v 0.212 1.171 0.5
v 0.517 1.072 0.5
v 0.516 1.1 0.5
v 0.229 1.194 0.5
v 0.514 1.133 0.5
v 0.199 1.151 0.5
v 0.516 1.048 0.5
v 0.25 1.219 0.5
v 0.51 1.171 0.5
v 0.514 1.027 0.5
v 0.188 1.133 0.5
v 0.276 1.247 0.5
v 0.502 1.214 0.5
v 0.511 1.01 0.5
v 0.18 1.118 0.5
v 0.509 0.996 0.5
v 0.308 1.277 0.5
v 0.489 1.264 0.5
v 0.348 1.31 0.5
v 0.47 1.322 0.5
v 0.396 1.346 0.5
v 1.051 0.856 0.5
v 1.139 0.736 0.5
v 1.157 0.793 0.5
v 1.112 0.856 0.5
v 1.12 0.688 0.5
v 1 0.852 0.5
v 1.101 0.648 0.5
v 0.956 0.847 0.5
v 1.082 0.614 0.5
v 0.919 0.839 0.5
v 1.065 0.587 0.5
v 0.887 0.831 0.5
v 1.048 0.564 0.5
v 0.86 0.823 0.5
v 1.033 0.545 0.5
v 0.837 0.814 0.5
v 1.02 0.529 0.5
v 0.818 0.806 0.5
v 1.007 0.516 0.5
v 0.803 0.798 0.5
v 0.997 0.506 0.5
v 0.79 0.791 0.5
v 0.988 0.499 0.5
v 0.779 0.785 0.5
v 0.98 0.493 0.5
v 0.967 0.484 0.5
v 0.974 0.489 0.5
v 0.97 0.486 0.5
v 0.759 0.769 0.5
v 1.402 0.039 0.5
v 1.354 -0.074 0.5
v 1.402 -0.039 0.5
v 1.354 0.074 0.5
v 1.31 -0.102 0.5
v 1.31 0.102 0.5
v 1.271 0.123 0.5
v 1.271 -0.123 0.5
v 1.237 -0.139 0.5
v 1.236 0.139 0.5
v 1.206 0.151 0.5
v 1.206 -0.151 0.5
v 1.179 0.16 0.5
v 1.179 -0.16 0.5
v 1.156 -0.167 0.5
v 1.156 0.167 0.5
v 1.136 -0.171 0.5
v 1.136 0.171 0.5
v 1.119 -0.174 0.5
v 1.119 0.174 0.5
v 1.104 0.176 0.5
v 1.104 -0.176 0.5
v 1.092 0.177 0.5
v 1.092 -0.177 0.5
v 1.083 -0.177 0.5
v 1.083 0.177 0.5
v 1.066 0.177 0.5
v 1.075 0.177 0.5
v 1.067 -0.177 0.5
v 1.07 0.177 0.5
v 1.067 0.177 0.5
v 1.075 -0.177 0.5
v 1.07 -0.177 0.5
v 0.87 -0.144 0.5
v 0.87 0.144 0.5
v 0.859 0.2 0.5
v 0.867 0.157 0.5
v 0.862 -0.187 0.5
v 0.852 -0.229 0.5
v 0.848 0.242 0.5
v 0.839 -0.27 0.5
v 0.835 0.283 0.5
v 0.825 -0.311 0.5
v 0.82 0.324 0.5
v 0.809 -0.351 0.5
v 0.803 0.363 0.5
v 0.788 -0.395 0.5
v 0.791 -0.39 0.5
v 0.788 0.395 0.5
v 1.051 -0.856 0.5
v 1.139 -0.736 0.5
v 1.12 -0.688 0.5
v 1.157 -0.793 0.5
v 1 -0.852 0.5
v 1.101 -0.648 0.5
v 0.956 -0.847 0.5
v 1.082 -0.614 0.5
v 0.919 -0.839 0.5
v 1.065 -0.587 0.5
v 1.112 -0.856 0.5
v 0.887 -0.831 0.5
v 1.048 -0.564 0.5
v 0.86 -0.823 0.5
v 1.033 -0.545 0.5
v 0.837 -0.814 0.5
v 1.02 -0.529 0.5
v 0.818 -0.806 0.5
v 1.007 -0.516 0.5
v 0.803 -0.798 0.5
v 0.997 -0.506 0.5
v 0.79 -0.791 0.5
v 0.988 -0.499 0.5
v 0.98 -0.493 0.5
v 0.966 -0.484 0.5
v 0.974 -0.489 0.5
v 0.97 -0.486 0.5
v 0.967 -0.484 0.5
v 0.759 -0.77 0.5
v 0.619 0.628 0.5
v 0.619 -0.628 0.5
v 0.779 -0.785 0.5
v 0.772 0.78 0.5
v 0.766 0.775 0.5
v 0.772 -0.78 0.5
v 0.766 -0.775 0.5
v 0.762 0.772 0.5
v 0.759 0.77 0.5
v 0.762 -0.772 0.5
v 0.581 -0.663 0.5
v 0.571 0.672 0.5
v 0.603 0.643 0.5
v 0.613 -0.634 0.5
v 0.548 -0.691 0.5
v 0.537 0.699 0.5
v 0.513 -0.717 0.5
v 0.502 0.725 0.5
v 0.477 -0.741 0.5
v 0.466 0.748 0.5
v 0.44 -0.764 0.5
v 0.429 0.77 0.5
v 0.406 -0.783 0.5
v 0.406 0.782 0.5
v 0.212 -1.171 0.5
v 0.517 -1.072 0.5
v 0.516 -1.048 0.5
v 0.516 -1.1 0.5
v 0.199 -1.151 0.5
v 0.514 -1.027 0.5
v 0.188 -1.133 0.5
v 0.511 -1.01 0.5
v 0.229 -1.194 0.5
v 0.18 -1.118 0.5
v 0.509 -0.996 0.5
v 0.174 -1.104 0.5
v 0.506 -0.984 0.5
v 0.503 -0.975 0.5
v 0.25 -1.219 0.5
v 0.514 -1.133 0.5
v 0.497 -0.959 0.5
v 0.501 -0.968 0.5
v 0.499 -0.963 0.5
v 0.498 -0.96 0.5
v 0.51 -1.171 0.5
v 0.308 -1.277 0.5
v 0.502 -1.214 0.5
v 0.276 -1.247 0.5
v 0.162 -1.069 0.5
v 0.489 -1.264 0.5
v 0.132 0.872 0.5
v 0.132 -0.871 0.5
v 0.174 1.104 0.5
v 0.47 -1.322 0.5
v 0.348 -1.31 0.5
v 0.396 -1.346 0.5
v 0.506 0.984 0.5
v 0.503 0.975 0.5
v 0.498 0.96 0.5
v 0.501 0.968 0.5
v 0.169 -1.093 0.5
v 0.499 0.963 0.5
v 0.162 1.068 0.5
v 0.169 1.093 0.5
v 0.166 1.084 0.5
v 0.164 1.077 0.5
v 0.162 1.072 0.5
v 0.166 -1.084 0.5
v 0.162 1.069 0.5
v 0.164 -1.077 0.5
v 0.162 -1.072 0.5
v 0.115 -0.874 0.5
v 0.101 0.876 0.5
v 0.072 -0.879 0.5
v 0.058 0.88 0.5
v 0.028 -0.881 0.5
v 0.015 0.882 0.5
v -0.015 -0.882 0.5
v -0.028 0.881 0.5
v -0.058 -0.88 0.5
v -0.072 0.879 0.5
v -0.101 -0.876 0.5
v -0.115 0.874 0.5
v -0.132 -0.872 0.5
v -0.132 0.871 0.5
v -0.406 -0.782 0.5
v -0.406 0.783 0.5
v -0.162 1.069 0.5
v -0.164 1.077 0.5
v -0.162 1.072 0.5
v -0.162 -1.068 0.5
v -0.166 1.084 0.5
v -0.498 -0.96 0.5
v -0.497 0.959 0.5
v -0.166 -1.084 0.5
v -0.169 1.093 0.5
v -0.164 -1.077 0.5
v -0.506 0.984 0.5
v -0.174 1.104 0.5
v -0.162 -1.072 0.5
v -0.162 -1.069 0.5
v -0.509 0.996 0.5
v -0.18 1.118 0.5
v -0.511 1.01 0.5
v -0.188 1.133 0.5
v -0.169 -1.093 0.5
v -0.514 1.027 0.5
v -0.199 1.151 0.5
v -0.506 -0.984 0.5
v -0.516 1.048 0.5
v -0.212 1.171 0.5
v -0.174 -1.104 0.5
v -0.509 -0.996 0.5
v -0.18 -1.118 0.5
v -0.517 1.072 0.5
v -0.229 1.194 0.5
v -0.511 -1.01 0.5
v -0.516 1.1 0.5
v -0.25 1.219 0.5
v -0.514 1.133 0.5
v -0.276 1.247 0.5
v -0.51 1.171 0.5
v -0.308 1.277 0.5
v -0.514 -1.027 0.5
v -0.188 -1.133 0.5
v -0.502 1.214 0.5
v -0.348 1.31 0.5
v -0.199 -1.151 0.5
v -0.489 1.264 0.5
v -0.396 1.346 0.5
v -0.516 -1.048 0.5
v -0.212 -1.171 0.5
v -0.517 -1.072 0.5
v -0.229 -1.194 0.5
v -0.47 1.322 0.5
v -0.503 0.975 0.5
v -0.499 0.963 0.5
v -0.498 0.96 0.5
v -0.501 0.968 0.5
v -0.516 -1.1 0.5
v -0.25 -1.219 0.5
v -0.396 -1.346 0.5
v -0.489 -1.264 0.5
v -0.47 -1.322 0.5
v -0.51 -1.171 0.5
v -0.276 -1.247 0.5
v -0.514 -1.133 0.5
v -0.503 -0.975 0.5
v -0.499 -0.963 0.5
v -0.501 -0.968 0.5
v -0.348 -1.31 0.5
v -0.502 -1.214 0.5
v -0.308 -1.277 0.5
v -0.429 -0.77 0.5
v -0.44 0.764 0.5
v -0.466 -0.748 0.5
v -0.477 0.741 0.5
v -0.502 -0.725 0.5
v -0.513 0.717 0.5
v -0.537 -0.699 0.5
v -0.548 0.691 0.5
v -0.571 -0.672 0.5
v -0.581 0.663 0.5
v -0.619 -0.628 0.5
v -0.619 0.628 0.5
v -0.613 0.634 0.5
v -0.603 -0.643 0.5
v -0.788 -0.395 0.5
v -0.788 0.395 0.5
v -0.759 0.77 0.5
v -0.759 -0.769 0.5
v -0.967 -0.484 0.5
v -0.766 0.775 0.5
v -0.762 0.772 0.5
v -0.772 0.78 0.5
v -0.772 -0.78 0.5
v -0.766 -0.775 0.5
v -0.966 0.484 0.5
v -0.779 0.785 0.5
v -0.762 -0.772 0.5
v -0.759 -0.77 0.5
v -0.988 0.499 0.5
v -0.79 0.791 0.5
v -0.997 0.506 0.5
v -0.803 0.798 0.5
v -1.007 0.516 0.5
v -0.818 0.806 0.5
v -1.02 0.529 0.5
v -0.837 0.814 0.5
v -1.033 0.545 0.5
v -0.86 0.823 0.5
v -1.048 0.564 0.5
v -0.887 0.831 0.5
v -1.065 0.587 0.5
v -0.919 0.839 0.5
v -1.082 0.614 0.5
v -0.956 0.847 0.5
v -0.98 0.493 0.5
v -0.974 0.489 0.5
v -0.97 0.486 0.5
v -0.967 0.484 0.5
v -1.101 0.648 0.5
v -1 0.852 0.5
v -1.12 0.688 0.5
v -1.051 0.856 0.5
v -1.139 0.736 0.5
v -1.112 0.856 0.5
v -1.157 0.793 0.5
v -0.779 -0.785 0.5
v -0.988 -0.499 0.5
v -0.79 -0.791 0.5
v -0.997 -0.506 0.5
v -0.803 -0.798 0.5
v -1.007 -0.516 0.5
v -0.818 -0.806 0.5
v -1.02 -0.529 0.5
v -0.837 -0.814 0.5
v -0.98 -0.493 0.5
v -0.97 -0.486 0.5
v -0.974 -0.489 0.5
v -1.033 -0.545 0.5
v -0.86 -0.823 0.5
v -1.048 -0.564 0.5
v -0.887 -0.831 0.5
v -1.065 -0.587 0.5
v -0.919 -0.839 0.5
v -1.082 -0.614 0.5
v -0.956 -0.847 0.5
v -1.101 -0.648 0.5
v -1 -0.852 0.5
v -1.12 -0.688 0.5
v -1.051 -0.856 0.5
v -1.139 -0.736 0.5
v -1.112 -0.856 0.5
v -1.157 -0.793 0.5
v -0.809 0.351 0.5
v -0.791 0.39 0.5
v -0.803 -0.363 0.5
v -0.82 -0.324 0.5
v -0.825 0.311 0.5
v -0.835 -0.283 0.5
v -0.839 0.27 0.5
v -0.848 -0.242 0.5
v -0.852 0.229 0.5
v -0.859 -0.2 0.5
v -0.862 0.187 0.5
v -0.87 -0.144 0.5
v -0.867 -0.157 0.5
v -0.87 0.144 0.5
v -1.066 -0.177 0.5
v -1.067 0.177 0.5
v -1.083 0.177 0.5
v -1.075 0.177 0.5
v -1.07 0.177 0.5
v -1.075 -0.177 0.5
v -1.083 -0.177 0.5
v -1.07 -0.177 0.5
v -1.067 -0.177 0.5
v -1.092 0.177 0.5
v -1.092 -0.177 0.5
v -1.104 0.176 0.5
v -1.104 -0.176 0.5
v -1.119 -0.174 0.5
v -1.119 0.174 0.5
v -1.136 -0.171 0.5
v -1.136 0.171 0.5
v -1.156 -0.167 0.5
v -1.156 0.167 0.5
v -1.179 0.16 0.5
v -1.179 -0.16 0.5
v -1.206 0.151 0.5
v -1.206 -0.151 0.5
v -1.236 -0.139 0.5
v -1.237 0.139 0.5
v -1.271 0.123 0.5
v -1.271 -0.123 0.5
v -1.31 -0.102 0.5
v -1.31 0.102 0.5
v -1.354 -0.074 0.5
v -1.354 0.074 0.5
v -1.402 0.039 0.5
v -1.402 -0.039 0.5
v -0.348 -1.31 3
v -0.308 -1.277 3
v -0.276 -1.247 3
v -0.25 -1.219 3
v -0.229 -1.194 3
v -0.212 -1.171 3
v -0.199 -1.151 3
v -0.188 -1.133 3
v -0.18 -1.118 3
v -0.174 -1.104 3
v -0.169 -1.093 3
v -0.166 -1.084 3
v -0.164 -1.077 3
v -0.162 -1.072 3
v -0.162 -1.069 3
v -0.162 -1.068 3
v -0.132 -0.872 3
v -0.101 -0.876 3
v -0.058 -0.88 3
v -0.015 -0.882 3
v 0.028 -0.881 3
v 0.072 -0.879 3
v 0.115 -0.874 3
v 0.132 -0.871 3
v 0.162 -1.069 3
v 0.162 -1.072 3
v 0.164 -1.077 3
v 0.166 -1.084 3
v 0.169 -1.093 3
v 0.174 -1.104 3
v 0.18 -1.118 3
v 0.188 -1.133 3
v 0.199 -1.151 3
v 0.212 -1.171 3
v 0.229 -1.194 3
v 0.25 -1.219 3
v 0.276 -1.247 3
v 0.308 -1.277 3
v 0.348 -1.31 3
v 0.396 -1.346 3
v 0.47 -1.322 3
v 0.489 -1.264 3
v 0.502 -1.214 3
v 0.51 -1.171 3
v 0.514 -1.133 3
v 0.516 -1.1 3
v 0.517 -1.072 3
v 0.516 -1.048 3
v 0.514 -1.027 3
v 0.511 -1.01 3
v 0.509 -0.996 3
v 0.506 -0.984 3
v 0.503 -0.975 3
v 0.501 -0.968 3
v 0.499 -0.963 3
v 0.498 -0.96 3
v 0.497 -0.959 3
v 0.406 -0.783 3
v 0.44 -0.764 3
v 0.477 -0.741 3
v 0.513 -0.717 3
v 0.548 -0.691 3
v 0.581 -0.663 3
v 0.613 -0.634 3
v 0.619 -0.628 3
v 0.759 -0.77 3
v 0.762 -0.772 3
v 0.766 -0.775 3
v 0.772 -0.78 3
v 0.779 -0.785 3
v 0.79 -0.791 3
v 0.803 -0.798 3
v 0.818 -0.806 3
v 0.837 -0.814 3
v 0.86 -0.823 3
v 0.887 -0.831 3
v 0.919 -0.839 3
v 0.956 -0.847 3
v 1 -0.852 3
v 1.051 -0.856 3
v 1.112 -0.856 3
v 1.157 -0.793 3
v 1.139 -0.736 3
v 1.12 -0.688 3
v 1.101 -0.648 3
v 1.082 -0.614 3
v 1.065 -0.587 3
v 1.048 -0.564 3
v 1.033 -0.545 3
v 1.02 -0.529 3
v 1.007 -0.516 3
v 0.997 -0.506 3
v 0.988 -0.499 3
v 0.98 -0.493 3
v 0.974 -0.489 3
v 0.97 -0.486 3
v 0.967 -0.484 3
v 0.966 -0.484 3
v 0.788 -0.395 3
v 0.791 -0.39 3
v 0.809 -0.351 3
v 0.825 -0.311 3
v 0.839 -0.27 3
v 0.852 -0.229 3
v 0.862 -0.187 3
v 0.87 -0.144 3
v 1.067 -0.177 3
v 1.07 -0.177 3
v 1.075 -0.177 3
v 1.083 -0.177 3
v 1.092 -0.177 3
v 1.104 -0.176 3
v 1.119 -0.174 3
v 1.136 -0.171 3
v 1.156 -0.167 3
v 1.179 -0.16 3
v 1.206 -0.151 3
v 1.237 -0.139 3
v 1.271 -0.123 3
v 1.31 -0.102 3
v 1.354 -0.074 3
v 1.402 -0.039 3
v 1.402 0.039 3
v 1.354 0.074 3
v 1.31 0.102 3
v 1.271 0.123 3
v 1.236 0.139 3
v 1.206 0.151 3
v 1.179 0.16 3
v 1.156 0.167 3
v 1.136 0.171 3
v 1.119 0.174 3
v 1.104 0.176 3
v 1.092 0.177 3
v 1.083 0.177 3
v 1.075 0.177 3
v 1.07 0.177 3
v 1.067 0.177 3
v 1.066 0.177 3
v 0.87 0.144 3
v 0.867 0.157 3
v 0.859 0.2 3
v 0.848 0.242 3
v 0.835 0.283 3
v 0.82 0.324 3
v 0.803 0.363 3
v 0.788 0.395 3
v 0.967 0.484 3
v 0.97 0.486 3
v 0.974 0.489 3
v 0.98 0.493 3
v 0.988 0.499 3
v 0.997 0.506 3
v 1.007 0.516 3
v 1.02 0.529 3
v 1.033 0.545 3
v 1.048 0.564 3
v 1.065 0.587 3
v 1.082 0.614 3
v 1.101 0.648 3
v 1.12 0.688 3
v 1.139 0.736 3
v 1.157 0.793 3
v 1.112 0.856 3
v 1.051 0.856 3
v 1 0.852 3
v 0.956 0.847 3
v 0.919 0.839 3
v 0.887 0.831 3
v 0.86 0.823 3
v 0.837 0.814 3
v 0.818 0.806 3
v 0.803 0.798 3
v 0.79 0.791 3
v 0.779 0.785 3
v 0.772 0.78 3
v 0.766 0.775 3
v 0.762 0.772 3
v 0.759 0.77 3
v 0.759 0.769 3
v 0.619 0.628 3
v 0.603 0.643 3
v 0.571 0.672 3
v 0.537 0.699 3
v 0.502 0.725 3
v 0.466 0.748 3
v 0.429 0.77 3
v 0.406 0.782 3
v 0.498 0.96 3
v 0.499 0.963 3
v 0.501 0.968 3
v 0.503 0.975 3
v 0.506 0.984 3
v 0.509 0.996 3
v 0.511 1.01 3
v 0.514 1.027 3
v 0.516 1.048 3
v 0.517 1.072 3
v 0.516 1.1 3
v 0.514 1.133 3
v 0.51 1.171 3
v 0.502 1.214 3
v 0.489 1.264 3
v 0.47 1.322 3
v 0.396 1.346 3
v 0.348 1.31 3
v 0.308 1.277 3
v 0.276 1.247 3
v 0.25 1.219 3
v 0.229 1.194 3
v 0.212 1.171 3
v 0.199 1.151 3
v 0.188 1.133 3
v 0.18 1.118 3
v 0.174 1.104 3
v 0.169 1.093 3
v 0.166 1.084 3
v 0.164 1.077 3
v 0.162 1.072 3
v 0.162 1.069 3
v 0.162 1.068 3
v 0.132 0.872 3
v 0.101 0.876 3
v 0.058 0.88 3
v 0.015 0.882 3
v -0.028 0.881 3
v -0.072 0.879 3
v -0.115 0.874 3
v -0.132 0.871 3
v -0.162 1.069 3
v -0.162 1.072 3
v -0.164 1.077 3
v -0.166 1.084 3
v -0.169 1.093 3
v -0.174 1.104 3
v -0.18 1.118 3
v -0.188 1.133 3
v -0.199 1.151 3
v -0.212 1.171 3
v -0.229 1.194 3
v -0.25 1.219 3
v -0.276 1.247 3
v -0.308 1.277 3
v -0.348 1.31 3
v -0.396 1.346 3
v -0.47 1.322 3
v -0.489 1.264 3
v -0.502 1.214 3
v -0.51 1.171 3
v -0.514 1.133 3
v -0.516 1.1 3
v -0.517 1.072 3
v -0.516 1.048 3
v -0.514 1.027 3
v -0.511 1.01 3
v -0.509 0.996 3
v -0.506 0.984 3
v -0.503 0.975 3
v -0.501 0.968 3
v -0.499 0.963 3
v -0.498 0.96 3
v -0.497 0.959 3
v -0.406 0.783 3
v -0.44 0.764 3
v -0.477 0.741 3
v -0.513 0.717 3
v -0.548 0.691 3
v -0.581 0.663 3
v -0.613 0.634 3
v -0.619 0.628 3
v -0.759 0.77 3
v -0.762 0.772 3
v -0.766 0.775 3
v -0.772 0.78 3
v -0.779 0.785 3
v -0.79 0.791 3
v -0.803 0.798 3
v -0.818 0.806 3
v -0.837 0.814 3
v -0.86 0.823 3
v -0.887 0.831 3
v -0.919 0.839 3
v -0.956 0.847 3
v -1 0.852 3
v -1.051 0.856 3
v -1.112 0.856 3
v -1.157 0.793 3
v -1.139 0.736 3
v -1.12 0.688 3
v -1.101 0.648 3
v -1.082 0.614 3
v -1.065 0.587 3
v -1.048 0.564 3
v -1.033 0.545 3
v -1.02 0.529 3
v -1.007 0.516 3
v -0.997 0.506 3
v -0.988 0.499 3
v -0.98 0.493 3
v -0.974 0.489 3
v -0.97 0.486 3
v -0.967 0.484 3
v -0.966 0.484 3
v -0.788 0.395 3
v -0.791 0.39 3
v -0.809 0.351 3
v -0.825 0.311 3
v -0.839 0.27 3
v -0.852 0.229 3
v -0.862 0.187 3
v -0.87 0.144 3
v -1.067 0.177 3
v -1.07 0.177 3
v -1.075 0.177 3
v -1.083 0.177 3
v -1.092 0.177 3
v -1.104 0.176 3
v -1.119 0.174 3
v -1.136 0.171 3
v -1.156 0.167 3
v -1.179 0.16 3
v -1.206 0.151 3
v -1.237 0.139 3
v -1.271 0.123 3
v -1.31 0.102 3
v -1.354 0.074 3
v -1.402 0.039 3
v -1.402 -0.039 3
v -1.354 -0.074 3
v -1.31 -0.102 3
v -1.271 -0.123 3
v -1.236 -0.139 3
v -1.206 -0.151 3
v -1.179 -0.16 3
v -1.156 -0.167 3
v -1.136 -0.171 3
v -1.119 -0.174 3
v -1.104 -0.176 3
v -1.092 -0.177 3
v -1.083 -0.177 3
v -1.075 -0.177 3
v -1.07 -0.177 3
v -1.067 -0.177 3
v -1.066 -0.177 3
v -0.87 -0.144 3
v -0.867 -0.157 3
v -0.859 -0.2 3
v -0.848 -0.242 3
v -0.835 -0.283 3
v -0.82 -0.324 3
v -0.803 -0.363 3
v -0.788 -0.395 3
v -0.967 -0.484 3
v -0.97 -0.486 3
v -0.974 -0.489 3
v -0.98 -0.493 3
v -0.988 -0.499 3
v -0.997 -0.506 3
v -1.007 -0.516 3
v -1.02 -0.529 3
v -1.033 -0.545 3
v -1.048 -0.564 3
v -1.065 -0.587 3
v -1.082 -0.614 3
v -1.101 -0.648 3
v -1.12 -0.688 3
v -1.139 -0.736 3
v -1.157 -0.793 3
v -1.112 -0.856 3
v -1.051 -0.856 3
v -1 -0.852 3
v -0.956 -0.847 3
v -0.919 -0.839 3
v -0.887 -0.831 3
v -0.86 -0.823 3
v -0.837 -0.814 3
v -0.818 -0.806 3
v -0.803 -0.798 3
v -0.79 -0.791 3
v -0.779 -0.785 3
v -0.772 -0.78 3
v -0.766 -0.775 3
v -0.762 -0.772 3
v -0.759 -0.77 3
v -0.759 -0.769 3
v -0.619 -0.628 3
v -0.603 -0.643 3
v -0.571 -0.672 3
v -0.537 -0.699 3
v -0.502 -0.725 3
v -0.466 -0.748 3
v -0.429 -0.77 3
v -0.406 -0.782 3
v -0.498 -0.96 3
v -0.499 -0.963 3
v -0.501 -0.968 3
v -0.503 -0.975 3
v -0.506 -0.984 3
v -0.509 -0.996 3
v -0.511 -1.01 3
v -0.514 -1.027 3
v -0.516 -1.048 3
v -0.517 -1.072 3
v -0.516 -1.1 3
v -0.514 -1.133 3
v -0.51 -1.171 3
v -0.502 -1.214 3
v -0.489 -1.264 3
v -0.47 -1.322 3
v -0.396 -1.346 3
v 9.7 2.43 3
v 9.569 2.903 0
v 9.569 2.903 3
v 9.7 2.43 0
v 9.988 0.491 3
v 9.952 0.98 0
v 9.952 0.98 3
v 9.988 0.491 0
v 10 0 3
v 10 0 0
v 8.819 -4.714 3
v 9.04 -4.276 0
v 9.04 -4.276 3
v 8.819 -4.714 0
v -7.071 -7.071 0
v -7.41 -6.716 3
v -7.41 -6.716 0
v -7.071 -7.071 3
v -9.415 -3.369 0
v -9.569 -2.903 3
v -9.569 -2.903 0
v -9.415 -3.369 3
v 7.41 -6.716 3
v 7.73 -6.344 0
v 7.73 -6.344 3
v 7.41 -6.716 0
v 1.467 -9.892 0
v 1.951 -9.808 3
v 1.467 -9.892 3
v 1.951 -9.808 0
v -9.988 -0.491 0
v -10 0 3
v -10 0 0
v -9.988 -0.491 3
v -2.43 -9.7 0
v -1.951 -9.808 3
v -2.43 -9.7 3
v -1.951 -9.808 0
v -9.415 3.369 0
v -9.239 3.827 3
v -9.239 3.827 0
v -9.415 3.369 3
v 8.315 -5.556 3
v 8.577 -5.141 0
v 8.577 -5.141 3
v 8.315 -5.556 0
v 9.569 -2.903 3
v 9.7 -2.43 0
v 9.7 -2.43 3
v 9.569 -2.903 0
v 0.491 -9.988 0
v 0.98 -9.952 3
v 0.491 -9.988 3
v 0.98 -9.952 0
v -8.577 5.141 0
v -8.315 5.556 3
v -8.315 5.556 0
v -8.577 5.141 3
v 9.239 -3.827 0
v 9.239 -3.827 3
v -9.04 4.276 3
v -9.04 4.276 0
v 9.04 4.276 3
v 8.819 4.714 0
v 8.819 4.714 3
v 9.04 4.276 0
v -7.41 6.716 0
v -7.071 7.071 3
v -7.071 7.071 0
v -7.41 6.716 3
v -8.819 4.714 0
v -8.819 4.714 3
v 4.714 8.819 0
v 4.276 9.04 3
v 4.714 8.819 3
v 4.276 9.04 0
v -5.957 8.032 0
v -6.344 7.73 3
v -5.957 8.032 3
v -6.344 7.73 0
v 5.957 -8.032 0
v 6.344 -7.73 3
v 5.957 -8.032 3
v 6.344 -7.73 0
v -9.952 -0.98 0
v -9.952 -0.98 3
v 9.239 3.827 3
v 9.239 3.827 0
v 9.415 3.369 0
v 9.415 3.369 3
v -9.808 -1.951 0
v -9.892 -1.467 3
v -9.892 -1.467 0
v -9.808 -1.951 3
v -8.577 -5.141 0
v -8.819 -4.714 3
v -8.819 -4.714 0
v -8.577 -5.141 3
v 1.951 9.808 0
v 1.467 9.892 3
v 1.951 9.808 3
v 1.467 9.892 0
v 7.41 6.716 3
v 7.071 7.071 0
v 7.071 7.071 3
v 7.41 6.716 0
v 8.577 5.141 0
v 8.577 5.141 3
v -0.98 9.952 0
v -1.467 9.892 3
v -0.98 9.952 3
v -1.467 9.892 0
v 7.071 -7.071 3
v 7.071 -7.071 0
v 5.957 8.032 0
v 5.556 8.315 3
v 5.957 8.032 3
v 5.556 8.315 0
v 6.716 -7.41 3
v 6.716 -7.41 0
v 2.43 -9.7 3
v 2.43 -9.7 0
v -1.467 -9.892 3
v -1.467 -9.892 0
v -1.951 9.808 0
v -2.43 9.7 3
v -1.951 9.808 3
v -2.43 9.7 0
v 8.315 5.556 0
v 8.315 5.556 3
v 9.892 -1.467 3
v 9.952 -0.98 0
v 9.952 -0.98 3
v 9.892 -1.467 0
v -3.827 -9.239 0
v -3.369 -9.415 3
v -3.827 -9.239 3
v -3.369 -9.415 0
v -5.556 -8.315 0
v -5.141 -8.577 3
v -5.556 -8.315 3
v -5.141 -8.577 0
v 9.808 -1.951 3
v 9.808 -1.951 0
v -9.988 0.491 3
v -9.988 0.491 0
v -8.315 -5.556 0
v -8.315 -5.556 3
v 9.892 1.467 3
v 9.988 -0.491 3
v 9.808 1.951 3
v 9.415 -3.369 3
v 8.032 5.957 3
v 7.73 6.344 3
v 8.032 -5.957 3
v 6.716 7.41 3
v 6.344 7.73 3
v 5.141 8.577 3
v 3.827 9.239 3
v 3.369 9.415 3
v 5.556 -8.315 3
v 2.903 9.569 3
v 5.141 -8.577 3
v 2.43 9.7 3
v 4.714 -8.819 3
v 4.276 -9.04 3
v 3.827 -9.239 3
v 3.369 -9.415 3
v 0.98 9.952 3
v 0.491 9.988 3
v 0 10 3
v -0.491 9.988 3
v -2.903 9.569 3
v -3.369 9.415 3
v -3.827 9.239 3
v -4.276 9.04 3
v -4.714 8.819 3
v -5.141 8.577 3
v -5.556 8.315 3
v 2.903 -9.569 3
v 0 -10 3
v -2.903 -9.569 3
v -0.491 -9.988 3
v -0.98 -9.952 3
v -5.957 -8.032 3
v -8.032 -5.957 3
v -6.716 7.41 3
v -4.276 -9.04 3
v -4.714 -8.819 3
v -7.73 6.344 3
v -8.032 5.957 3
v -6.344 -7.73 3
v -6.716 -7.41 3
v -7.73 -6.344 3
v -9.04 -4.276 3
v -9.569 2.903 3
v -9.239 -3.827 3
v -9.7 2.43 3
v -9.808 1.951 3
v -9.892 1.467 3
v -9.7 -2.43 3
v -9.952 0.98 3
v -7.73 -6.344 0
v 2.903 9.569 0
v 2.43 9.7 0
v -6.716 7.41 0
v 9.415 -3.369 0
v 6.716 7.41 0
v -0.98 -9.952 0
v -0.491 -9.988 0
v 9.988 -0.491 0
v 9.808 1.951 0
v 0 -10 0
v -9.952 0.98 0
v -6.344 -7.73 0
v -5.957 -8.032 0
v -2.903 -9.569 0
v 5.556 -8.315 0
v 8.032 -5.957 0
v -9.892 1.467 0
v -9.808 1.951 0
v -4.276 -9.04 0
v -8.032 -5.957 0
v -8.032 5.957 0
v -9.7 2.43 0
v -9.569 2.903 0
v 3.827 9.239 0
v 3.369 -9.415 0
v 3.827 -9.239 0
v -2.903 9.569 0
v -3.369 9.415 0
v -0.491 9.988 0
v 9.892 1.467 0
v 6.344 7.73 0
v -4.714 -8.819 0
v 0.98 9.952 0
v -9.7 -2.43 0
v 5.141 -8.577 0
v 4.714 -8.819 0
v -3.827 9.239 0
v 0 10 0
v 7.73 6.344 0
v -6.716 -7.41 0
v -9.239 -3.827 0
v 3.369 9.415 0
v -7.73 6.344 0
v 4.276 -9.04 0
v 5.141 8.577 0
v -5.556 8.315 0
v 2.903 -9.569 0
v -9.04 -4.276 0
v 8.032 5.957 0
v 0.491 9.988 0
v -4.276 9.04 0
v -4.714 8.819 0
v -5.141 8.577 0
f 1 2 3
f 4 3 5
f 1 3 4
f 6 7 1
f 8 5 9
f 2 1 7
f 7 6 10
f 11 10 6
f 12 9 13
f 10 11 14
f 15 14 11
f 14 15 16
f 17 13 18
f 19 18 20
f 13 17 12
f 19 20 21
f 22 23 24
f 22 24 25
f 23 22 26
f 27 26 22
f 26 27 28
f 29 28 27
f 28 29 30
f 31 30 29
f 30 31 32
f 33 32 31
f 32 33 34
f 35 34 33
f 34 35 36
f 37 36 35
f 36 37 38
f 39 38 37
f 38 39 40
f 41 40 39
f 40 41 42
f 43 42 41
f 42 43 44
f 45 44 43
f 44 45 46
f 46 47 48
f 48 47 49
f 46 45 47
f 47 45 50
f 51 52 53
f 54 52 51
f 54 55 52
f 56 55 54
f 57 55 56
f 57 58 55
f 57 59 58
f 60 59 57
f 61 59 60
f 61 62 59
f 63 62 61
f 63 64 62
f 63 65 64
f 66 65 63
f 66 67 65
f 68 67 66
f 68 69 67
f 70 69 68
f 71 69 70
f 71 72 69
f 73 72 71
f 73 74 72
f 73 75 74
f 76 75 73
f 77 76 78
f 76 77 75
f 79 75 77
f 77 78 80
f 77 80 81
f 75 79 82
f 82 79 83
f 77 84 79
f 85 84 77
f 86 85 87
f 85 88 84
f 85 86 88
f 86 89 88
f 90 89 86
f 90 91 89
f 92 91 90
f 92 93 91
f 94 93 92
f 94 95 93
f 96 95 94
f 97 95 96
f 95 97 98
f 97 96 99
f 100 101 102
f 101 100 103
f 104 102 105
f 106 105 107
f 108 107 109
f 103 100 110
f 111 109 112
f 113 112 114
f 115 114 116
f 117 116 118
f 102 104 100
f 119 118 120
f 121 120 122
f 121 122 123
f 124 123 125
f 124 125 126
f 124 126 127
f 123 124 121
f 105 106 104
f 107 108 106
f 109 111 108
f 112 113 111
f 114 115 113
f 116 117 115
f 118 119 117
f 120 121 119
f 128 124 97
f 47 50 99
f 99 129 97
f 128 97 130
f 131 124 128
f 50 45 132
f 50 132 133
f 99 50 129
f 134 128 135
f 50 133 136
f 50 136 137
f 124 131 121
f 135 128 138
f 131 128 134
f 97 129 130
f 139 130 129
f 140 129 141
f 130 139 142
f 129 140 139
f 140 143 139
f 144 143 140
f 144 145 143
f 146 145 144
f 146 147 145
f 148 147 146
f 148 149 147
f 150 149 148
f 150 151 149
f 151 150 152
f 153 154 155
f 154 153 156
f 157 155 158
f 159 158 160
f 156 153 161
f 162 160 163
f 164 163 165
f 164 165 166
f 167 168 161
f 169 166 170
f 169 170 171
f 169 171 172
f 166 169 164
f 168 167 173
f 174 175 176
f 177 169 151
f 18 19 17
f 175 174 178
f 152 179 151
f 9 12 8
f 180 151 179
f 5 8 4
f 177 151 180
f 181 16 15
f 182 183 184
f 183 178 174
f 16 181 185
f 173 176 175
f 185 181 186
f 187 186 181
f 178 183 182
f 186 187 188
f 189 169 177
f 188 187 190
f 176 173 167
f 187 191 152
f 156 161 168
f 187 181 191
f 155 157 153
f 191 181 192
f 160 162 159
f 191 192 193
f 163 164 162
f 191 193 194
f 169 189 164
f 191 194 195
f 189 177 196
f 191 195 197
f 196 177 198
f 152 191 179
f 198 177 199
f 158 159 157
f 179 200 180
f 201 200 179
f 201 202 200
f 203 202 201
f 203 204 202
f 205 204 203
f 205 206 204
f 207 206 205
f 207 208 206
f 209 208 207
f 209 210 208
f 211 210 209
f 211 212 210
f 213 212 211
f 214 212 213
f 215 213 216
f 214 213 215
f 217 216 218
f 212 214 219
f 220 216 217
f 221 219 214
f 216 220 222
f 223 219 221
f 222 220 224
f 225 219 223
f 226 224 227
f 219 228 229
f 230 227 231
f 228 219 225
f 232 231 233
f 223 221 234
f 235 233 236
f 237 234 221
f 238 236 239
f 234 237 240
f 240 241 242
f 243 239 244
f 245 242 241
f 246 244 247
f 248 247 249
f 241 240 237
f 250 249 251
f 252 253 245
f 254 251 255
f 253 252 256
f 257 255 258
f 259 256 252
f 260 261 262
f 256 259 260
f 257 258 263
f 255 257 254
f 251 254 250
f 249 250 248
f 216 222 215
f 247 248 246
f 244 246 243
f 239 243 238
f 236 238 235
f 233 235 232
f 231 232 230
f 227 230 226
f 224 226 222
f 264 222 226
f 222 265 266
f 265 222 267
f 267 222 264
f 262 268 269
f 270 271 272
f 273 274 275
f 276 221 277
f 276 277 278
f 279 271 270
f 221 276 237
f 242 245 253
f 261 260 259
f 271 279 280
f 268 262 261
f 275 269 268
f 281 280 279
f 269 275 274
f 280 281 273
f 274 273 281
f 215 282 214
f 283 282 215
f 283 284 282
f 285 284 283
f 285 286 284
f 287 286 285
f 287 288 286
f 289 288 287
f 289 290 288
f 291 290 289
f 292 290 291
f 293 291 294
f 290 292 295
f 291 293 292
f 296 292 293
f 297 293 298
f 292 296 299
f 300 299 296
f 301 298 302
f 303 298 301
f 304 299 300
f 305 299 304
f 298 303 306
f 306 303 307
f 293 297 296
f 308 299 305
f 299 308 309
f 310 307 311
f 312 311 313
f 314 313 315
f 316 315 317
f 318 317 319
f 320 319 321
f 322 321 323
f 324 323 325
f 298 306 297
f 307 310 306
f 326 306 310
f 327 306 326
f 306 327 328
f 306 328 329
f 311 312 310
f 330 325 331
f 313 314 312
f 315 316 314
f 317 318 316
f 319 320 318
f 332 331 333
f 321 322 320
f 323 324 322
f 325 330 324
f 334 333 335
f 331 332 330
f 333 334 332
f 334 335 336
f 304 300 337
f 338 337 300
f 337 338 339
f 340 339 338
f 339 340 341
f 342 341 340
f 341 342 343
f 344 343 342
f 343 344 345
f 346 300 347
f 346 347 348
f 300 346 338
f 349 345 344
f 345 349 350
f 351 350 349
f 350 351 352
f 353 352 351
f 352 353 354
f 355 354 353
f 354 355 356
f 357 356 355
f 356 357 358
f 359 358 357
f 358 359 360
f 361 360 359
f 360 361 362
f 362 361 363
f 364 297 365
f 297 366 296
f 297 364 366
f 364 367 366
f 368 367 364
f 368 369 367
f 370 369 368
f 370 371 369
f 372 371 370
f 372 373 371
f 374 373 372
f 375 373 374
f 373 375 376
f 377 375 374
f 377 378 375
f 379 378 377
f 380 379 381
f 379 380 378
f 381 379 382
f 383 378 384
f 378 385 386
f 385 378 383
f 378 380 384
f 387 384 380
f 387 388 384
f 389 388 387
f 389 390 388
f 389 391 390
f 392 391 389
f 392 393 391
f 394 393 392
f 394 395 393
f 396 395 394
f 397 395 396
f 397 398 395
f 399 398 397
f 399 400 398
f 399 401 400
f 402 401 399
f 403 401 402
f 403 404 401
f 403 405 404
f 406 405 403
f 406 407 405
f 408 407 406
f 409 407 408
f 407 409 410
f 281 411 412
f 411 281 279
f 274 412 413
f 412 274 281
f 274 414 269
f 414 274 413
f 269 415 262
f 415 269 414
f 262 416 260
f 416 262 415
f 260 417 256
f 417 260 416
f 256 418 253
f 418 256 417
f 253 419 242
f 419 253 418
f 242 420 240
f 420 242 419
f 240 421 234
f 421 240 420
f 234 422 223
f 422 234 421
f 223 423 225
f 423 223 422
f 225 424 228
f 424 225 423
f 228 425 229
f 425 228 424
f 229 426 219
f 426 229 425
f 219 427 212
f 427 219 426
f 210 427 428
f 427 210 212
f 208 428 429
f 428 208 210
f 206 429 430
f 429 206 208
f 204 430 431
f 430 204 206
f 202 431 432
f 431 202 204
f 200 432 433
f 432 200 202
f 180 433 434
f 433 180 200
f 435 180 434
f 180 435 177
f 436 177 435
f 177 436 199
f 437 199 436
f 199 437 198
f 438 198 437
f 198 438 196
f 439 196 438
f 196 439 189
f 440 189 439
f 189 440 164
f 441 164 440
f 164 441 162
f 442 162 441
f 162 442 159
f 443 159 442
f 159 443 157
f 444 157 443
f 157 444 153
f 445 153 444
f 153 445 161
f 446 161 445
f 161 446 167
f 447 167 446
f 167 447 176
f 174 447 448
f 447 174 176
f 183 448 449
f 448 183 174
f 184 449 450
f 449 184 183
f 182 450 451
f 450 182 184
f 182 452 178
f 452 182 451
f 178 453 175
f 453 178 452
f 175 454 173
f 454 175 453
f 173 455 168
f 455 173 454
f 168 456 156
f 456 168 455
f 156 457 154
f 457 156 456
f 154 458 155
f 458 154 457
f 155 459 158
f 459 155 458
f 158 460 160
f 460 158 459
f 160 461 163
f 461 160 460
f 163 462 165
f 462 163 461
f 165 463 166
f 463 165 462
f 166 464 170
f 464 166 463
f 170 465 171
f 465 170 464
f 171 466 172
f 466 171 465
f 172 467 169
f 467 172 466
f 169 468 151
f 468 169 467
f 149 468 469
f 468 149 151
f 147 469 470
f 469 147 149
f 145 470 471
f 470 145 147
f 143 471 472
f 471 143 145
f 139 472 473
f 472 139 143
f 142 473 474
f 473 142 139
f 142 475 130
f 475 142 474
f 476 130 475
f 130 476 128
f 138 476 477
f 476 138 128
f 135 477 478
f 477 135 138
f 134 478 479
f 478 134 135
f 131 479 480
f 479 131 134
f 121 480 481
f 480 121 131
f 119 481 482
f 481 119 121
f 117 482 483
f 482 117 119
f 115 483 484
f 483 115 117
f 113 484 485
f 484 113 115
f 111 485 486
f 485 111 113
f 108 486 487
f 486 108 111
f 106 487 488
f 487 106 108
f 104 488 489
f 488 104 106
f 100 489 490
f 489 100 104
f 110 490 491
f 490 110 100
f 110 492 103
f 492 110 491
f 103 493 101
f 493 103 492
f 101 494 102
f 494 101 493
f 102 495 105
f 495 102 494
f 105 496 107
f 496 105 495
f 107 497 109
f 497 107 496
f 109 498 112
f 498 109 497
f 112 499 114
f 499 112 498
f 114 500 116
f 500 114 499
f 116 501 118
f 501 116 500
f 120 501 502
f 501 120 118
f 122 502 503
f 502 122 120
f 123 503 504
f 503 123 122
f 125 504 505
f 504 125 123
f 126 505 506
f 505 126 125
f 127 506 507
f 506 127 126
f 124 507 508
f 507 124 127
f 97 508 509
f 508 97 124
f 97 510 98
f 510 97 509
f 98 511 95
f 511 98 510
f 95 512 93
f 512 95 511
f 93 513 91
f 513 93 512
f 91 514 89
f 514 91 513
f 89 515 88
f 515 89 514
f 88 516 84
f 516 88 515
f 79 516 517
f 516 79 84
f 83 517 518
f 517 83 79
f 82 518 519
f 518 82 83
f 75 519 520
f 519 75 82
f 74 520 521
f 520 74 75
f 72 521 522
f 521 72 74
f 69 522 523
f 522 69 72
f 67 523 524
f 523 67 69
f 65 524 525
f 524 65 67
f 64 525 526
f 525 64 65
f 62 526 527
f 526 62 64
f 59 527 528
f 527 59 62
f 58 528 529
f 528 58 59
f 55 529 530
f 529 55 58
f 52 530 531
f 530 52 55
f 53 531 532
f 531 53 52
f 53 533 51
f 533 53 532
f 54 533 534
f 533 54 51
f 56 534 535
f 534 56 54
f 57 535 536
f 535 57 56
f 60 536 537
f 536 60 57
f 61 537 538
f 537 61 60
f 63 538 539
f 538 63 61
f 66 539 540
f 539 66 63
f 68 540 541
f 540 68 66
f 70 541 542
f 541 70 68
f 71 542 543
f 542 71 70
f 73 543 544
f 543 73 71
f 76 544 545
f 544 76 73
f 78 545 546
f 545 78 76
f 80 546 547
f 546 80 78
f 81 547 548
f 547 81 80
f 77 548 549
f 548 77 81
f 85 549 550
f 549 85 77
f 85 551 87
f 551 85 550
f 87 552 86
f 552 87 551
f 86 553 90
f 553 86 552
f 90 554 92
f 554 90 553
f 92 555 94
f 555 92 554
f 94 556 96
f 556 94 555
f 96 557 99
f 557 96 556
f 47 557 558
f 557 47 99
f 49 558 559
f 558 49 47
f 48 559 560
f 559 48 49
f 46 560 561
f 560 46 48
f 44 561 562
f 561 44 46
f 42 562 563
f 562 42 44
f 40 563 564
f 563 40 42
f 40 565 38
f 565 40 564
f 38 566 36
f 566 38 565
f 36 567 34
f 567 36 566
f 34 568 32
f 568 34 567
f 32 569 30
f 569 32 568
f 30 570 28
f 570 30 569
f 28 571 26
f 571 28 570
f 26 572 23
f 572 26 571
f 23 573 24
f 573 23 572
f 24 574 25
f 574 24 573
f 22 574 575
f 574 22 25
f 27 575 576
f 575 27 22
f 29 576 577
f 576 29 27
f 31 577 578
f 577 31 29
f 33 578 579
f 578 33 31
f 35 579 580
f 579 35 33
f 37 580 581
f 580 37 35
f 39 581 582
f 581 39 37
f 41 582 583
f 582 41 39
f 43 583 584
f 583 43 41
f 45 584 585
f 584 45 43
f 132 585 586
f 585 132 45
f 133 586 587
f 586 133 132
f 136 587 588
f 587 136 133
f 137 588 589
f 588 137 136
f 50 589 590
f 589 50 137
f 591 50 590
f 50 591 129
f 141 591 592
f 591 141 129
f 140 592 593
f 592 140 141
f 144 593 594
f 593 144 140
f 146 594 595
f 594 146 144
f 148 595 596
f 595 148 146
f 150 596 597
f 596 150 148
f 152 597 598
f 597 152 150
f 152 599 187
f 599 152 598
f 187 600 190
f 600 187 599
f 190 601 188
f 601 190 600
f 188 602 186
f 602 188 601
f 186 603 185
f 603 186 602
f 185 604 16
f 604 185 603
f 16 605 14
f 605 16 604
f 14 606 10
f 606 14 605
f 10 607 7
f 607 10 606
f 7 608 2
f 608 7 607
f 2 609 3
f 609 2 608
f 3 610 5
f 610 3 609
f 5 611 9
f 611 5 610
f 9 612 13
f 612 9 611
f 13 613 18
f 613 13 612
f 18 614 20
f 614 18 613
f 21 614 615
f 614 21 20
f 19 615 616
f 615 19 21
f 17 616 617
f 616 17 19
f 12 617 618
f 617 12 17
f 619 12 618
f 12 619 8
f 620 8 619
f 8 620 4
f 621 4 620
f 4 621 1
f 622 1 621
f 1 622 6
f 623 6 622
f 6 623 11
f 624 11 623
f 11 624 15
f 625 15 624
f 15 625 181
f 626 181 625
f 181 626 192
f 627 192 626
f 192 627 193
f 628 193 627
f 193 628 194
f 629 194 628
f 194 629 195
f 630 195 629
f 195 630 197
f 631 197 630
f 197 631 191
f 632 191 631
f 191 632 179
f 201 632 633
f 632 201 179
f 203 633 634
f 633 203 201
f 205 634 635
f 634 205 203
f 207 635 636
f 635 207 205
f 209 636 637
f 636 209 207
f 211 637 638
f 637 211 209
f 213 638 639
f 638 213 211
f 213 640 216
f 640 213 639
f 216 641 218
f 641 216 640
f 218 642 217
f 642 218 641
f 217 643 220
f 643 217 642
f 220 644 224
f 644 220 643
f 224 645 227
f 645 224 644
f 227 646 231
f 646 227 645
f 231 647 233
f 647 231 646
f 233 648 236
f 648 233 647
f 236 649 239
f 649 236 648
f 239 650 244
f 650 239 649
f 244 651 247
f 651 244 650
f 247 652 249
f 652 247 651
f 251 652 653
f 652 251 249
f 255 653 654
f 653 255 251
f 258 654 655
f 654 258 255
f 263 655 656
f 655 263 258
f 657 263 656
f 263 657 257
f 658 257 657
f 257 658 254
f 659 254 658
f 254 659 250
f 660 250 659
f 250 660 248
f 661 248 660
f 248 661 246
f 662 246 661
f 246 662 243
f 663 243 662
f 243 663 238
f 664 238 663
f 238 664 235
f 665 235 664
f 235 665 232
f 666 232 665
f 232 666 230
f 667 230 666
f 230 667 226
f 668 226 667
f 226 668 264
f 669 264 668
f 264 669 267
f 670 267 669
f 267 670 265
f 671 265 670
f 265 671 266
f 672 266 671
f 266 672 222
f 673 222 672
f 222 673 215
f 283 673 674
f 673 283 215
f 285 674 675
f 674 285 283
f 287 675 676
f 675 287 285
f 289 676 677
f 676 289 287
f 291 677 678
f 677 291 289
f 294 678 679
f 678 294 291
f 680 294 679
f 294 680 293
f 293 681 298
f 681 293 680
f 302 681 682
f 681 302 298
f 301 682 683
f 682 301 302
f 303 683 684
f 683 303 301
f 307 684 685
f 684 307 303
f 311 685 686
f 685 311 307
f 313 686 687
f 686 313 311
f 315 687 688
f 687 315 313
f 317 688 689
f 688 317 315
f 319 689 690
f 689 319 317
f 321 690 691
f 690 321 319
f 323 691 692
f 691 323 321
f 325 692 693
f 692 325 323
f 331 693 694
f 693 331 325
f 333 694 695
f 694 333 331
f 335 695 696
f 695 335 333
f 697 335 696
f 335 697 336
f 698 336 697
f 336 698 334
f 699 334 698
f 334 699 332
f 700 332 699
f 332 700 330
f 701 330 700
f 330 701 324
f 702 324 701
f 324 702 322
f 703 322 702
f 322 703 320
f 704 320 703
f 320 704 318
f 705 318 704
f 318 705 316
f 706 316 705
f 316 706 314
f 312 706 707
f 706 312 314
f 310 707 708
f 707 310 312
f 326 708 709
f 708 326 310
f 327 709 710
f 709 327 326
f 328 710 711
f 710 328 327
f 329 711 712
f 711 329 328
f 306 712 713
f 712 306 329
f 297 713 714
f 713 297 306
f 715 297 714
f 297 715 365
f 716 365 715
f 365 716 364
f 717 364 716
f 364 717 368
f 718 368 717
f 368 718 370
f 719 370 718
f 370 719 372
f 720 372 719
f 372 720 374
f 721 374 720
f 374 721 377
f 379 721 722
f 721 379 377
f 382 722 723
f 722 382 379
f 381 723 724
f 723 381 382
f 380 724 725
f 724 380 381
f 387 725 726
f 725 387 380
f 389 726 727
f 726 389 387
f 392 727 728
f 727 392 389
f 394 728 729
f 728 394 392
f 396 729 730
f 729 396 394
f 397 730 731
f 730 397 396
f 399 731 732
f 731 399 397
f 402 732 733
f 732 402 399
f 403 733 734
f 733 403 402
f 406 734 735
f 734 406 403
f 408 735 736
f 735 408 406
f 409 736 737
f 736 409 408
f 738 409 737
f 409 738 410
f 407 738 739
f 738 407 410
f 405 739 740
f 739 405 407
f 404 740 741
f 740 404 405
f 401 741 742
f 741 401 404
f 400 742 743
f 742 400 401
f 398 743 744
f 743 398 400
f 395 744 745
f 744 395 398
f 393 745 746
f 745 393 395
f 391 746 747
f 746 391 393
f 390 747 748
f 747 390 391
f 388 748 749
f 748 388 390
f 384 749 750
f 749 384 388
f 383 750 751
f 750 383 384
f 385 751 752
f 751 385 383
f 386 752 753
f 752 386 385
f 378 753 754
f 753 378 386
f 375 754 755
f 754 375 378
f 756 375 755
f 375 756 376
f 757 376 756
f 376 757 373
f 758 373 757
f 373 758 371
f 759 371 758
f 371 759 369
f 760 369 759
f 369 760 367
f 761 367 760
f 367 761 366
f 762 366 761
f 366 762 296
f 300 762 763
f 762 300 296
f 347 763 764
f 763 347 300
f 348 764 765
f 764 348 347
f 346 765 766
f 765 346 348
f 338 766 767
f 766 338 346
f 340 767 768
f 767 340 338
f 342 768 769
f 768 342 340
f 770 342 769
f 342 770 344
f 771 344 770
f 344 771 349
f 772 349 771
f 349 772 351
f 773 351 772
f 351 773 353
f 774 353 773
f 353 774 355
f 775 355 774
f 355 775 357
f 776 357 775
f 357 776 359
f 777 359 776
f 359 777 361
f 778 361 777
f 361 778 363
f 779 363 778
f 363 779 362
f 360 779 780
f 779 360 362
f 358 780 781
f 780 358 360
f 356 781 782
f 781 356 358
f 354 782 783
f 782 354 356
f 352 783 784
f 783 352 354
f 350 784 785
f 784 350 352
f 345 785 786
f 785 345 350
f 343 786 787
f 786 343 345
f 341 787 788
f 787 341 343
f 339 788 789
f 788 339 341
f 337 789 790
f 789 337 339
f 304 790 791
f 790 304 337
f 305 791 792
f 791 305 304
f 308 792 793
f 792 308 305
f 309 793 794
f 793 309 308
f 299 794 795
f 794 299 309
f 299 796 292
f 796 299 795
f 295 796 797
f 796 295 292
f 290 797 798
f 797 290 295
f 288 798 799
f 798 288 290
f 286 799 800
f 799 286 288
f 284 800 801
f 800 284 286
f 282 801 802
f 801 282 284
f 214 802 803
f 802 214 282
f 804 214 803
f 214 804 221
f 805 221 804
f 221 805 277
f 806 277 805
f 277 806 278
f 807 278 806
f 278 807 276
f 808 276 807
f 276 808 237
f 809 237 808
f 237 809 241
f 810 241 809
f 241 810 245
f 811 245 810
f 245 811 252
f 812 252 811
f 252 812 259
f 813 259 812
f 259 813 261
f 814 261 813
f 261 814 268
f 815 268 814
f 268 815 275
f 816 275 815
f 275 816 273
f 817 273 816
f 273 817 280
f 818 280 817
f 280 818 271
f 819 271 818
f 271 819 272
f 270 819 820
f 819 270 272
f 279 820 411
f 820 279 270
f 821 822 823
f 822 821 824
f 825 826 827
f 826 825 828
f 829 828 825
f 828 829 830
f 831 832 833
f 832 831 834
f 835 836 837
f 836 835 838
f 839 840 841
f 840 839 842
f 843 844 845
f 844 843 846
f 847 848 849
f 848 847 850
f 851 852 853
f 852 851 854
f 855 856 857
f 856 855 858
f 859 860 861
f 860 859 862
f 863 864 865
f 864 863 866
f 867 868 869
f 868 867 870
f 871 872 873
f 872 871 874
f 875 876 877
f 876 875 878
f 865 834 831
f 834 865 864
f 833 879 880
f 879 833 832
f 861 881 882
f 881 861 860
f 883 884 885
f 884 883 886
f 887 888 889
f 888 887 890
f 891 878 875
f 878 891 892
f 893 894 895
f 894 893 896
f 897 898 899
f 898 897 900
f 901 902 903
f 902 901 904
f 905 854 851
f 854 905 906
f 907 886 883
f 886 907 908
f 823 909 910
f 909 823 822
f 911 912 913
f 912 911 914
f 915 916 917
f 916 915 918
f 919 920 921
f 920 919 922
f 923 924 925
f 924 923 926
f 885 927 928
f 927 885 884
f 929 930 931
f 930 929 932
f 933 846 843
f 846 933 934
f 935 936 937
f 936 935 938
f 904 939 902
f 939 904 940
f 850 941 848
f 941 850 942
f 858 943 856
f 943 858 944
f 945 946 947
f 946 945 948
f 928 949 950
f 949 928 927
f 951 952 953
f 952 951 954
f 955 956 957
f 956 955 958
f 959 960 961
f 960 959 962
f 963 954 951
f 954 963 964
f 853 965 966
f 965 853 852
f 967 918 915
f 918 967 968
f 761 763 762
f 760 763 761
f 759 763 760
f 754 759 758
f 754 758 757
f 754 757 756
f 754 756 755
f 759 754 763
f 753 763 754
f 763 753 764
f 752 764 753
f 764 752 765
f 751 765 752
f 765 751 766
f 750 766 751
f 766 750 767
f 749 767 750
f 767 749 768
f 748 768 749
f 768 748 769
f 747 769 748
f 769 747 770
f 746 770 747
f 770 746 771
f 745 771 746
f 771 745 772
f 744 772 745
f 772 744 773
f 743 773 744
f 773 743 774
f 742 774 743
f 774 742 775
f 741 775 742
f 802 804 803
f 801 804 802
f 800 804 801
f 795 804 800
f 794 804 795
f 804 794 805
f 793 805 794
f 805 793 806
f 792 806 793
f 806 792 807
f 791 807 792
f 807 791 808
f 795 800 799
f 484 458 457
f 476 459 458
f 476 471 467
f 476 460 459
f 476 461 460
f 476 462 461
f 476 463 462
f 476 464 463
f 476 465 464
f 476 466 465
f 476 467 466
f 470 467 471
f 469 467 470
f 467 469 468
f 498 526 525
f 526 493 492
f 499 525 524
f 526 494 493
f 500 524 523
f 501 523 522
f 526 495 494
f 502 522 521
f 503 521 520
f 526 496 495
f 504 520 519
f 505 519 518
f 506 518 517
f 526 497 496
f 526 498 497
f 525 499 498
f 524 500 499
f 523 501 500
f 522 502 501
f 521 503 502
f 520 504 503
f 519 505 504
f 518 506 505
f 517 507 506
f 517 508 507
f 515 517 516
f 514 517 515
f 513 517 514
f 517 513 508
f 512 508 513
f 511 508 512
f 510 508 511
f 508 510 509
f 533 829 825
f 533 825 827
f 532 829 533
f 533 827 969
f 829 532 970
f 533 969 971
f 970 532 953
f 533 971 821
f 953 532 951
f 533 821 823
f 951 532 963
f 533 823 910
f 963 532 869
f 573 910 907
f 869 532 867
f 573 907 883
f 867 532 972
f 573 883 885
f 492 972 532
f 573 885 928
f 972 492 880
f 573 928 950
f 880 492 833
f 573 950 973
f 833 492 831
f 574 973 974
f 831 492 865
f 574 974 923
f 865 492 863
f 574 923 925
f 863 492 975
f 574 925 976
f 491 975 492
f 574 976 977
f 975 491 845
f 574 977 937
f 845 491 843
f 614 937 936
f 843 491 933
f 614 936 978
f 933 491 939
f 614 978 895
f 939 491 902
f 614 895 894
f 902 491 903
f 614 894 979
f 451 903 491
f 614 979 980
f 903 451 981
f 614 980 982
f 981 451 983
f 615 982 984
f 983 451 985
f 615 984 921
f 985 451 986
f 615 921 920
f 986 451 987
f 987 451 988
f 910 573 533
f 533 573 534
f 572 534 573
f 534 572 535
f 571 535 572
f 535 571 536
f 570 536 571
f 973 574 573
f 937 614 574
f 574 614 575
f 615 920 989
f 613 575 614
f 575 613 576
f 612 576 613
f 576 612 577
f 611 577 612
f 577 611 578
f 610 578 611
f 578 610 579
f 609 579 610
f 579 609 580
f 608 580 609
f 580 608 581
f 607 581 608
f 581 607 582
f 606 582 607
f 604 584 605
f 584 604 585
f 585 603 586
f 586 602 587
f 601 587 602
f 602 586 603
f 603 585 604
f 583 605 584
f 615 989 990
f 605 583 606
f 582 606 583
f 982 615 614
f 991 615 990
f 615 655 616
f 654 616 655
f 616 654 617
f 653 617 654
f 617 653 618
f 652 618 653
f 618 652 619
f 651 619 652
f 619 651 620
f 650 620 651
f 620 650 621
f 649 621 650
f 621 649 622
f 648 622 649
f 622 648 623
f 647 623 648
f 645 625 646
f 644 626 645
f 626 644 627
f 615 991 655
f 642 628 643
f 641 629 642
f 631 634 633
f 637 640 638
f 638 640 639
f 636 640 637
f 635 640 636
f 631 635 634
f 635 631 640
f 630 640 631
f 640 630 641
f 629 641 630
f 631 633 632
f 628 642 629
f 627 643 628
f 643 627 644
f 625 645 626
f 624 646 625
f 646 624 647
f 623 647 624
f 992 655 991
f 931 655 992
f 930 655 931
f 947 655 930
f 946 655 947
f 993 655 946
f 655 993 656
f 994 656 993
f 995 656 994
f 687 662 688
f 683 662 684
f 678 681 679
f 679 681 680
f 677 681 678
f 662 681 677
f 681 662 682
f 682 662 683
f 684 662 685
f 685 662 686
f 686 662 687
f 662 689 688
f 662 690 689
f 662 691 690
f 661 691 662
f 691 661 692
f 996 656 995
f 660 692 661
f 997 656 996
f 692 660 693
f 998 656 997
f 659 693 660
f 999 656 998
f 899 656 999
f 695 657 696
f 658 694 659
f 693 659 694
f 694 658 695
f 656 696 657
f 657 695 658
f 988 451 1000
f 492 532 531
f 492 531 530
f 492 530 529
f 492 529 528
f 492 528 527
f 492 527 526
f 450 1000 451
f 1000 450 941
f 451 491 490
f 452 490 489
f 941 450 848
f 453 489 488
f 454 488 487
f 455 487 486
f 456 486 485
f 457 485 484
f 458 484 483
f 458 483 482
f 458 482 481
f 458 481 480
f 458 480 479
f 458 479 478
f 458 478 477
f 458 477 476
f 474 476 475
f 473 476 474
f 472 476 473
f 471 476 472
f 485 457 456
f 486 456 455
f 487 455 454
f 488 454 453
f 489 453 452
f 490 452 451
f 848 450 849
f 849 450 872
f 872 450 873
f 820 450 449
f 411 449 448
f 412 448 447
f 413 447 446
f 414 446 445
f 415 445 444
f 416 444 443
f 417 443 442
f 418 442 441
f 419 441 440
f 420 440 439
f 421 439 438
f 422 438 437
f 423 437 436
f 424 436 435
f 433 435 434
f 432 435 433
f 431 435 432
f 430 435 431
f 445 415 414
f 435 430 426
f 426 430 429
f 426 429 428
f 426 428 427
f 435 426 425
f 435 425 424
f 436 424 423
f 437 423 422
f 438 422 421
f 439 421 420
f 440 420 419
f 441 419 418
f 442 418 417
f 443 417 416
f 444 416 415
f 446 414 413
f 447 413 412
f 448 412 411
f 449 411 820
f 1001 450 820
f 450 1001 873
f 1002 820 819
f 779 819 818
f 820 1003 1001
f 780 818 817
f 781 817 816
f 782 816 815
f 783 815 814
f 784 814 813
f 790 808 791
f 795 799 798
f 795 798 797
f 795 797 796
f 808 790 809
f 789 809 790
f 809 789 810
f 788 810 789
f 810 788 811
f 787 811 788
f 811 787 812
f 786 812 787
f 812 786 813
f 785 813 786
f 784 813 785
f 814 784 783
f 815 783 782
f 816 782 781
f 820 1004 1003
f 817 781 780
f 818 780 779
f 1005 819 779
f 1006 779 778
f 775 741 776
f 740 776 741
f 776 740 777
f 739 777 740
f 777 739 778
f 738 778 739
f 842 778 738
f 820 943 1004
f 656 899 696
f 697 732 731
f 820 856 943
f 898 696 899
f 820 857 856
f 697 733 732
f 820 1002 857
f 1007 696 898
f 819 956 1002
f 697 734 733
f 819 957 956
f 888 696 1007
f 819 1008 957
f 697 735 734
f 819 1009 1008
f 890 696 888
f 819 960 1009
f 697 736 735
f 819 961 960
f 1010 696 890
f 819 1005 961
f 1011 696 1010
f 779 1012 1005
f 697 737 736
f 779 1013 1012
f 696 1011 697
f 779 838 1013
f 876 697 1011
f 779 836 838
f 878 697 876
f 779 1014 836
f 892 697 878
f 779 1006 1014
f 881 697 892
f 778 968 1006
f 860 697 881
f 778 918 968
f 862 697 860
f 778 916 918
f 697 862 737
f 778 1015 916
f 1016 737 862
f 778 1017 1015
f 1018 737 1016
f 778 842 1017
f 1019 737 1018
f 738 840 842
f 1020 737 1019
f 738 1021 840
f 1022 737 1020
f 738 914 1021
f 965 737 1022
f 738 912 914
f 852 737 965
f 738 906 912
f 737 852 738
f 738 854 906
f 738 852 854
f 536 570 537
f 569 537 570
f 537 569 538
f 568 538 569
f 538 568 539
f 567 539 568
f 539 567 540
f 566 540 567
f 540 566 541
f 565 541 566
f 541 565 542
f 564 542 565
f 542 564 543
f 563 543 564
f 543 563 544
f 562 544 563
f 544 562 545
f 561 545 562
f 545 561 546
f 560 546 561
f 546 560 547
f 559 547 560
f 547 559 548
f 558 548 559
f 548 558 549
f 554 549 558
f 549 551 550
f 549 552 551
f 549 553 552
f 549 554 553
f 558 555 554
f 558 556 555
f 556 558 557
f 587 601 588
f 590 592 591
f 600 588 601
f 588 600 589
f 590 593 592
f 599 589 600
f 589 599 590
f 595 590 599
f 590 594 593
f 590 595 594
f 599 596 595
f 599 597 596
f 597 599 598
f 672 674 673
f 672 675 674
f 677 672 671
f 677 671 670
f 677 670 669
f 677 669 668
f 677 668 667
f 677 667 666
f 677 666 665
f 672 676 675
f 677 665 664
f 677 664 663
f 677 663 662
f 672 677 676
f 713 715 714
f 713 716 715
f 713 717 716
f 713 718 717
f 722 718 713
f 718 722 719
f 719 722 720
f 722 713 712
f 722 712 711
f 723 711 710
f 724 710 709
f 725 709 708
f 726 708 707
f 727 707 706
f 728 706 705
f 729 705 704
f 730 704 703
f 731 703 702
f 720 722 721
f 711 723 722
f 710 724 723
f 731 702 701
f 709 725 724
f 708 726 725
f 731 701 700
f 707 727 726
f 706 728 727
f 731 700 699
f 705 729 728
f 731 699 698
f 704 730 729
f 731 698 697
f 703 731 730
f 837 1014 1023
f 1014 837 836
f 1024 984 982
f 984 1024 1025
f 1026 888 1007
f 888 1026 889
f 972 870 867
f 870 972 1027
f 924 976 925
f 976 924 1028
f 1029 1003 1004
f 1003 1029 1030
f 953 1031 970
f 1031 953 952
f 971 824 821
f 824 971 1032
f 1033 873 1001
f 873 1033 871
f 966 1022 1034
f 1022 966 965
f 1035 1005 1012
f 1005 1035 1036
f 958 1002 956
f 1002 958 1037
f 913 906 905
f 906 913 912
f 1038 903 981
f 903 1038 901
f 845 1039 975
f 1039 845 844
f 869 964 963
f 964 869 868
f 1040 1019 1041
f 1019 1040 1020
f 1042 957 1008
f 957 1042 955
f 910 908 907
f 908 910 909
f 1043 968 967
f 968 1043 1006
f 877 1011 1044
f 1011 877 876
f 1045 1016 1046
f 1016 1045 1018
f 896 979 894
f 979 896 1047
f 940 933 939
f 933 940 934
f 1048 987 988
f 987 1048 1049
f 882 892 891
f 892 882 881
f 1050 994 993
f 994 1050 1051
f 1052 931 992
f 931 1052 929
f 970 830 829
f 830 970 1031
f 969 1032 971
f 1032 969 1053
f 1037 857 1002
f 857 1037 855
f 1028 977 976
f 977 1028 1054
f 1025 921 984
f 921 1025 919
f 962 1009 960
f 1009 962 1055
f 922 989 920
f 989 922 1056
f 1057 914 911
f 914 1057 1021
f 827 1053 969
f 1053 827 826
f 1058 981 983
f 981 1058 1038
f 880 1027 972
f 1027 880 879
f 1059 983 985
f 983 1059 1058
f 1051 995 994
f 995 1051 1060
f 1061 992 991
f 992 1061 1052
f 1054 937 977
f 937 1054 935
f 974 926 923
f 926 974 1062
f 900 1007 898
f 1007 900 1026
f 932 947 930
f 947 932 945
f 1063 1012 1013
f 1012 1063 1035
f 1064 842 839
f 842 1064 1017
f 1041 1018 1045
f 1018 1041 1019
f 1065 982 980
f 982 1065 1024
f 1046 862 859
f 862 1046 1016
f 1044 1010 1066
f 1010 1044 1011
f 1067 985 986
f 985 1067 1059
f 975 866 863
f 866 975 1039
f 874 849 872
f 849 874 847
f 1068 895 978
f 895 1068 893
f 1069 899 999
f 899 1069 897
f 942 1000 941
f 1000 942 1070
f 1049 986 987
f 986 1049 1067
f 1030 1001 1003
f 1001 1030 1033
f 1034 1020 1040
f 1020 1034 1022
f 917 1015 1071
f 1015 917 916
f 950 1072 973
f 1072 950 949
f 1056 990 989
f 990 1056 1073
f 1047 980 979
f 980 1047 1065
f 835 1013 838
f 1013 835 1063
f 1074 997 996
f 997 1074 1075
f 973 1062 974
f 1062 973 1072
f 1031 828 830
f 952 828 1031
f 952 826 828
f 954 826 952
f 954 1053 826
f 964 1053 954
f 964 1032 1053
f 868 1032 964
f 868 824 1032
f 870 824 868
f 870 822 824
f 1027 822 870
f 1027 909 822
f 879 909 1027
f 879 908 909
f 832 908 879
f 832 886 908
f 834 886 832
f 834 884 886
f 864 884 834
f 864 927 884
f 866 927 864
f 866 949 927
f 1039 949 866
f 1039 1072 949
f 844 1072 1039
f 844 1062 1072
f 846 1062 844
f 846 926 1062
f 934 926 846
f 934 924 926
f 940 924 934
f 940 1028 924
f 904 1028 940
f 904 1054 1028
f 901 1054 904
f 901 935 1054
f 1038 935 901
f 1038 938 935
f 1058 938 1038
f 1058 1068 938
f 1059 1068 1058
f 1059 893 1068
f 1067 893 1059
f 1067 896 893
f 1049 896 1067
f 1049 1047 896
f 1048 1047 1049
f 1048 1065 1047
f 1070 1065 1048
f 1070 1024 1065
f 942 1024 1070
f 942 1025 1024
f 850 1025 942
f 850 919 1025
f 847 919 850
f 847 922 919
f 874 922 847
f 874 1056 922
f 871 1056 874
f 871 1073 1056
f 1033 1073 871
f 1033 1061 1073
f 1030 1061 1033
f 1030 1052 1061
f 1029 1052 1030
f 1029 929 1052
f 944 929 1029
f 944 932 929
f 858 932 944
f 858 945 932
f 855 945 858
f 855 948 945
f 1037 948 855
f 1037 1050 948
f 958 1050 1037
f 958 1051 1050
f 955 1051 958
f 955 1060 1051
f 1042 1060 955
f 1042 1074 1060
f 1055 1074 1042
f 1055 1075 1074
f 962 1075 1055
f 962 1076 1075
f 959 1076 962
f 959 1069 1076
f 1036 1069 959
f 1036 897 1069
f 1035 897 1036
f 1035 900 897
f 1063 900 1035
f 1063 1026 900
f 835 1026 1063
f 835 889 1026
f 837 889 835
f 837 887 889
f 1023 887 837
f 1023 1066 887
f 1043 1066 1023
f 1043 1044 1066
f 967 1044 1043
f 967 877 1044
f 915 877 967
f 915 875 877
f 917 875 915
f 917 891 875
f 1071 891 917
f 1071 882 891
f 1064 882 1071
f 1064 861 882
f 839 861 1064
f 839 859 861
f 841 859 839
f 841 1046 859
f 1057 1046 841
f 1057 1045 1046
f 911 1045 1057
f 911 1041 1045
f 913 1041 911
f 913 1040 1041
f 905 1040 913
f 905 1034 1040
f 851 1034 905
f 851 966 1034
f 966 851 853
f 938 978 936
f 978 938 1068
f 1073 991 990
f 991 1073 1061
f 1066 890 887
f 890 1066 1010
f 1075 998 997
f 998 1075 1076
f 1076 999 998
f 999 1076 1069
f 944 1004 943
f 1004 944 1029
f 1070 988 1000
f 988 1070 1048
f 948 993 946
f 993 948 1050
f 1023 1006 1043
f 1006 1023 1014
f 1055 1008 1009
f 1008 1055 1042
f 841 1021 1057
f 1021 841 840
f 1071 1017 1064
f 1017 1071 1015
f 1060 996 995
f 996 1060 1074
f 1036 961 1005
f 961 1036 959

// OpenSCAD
include <./lib/gears.scad>

difference() {
    $fn = 128;
    cylinder(3, 10, 10);

    translate([0,0,0.5]) {
        spur_gear(0.23, 10, 3, 0);
    }
}
